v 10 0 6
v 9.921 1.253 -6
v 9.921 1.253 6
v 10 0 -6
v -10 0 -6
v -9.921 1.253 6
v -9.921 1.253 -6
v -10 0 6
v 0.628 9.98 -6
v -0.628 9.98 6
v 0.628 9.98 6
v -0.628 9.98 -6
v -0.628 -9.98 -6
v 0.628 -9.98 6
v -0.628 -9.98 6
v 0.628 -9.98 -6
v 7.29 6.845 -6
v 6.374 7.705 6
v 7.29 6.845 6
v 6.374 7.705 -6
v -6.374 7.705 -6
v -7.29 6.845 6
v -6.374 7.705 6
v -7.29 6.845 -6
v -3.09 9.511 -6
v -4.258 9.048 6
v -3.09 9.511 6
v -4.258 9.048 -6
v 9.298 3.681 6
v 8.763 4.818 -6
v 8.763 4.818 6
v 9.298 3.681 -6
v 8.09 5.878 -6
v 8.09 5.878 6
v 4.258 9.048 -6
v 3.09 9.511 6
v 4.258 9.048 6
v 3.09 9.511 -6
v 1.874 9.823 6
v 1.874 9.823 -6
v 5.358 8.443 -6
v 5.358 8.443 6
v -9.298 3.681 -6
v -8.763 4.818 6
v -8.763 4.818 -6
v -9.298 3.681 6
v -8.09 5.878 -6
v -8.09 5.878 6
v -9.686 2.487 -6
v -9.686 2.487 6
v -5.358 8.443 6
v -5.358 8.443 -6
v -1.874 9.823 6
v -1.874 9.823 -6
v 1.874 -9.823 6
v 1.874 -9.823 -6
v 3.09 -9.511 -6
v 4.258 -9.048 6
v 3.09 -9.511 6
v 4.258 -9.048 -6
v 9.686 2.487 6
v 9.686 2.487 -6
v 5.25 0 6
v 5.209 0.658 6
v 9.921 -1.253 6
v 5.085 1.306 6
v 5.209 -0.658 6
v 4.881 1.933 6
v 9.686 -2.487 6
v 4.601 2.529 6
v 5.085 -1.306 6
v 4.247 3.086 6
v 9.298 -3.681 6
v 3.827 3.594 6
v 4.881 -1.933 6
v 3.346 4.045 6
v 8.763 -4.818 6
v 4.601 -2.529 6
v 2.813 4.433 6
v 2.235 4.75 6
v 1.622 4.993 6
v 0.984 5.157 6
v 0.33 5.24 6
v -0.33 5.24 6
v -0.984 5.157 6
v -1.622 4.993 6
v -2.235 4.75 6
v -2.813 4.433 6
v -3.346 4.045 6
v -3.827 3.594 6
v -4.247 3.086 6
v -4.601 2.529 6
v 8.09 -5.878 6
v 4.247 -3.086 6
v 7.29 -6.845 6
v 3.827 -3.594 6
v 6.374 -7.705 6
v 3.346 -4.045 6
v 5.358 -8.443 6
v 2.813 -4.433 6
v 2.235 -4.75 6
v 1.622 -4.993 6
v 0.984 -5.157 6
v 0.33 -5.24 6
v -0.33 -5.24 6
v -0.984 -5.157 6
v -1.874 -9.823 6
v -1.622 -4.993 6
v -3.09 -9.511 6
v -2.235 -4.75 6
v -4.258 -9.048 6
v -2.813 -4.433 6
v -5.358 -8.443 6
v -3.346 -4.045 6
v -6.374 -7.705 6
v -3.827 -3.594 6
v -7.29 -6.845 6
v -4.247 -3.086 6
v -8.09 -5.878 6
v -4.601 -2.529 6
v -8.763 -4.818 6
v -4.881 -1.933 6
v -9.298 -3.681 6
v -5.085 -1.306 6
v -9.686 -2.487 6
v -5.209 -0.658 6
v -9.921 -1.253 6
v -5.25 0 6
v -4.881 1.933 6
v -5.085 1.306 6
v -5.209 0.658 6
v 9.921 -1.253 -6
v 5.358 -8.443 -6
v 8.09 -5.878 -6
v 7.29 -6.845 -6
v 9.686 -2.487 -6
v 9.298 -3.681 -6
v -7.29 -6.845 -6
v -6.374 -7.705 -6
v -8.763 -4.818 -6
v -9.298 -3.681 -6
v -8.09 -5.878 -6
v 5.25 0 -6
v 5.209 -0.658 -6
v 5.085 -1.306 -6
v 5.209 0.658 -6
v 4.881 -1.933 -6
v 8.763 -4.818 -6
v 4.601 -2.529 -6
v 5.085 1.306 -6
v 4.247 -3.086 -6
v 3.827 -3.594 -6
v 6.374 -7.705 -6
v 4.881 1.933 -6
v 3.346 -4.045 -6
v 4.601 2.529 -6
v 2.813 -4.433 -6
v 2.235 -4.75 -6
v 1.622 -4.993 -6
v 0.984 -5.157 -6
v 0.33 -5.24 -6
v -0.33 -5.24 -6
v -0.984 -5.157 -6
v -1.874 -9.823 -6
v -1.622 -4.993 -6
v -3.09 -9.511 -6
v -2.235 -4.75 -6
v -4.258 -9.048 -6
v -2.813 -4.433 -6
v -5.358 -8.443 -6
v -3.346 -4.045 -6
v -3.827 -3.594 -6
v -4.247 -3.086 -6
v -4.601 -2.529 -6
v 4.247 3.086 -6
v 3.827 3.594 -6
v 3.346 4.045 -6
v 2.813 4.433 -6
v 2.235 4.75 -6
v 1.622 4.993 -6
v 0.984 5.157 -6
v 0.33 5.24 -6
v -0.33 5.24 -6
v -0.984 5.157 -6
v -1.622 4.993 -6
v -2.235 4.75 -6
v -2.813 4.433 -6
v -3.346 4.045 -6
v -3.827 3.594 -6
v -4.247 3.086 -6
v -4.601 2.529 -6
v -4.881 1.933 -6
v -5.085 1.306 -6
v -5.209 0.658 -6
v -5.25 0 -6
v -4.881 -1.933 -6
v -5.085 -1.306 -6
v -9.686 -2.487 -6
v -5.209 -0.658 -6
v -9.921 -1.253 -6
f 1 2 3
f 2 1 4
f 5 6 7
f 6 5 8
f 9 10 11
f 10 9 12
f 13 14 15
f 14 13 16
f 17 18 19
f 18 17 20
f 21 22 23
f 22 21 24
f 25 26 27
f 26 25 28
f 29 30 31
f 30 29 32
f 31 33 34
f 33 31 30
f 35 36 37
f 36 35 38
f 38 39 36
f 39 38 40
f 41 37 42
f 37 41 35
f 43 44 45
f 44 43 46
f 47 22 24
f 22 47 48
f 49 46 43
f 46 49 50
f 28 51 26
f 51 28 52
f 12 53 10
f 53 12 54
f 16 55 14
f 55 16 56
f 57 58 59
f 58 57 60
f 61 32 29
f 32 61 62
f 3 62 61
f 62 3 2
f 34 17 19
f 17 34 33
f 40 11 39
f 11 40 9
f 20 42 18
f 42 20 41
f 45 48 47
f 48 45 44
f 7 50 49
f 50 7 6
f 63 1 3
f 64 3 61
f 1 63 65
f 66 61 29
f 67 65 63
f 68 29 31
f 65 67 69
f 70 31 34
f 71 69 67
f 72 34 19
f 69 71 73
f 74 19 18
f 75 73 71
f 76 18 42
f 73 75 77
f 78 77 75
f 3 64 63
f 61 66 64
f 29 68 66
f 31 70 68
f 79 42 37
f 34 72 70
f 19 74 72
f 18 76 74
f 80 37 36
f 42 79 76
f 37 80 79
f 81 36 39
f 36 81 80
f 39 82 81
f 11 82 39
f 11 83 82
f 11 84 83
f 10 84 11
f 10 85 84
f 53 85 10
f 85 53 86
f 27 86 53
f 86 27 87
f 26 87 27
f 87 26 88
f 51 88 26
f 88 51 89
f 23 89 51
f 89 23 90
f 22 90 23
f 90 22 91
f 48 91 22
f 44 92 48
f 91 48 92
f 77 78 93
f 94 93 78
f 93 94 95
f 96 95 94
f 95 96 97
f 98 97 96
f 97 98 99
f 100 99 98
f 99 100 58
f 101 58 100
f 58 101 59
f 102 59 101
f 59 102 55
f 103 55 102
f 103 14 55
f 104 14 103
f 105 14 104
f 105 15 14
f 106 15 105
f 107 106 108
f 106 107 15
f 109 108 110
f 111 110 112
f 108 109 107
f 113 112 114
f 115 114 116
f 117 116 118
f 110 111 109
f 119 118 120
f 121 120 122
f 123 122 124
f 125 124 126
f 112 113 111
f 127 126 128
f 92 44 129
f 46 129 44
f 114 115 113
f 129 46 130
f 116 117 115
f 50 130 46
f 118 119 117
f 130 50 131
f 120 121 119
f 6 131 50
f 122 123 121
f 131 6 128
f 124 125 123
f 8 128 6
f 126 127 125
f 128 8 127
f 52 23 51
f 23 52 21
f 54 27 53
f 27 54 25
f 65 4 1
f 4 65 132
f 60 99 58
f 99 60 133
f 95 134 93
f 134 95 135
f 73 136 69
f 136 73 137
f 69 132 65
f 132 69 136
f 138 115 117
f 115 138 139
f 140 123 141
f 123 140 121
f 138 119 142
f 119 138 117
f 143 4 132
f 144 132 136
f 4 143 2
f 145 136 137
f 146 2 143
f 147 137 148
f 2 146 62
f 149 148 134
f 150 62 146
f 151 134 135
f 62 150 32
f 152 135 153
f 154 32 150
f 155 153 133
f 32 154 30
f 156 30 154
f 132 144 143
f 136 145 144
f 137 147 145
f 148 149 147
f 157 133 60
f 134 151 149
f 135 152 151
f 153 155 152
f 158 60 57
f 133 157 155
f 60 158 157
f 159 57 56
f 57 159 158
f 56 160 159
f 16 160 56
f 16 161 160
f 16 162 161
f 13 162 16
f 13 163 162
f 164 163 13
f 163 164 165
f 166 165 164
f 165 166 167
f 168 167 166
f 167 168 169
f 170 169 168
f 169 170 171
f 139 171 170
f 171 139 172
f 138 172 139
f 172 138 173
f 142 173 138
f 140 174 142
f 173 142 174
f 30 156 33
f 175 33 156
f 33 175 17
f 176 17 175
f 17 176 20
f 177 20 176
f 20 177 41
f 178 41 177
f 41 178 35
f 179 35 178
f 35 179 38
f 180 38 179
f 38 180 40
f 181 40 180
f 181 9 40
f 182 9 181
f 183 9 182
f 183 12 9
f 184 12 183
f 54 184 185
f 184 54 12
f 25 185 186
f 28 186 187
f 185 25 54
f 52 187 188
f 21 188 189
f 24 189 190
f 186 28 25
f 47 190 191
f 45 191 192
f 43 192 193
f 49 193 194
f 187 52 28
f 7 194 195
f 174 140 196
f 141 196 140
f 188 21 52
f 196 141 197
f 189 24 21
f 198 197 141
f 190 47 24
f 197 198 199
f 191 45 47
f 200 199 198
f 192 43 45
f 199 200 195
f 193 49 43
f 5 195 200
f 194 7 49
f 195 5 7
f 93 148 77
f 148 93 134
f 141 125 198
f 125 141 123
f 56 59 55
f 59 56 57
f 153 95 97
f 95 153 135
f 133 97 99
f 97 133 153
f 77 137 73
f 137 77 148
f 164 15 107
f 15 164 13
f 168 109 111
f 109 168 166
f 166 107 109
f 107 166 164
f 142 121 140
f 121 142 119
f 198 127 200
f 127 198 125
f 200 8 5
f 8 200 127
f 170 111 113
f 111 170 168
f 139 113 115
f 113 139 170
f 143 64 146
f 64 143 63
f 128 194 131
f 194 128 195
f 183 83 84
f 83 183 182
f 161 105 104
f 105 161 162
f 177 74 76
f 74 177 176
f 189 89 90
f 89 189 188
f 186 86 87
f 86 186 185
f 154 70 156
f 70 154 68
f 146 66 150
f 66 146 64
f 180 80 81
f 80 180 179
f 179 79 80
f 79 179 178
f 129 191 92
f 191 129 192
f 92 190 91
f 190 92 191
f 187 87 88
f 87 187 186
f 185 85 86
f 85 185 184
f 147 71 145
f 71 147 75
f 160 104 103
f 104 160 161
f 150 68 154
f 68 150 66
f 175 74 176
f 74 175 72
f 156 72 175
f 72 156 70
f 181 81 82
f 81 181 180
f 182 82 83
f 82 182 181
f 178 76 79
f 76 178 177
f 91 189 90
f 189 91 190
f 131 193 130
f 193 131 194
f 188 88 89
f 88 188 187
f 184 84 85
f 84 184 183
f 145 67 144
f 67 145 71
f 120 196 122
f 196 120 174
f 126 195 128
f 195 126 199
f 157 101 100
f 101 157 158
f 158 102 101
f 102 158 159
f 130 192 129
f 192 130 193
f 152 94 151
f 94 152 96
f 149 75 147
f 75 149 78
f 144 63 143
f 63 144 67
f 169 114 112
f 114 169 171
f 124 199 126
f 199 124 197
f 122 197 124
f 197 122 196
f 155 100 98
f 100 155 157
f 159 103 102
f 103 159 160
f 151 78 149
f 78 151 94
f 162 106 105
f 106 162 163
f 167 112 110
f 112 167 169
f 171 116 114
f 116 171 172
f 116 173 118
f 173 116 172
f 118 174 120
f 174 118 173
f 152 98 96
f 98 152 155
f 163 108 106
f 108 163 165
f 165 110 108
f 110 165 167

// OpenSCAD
$fn = 50;


difference() {
	union() {
		translate(v = [0, 0, -6.0000000000]) {
			cylinder(h = 12, r = 10.0000000000);
		}
	}
	union() {
		translate(v = [0, 0, -100.0000000000]) {
			cylinder(h = 200, r = 5.2500000000);
		}
	}
}
